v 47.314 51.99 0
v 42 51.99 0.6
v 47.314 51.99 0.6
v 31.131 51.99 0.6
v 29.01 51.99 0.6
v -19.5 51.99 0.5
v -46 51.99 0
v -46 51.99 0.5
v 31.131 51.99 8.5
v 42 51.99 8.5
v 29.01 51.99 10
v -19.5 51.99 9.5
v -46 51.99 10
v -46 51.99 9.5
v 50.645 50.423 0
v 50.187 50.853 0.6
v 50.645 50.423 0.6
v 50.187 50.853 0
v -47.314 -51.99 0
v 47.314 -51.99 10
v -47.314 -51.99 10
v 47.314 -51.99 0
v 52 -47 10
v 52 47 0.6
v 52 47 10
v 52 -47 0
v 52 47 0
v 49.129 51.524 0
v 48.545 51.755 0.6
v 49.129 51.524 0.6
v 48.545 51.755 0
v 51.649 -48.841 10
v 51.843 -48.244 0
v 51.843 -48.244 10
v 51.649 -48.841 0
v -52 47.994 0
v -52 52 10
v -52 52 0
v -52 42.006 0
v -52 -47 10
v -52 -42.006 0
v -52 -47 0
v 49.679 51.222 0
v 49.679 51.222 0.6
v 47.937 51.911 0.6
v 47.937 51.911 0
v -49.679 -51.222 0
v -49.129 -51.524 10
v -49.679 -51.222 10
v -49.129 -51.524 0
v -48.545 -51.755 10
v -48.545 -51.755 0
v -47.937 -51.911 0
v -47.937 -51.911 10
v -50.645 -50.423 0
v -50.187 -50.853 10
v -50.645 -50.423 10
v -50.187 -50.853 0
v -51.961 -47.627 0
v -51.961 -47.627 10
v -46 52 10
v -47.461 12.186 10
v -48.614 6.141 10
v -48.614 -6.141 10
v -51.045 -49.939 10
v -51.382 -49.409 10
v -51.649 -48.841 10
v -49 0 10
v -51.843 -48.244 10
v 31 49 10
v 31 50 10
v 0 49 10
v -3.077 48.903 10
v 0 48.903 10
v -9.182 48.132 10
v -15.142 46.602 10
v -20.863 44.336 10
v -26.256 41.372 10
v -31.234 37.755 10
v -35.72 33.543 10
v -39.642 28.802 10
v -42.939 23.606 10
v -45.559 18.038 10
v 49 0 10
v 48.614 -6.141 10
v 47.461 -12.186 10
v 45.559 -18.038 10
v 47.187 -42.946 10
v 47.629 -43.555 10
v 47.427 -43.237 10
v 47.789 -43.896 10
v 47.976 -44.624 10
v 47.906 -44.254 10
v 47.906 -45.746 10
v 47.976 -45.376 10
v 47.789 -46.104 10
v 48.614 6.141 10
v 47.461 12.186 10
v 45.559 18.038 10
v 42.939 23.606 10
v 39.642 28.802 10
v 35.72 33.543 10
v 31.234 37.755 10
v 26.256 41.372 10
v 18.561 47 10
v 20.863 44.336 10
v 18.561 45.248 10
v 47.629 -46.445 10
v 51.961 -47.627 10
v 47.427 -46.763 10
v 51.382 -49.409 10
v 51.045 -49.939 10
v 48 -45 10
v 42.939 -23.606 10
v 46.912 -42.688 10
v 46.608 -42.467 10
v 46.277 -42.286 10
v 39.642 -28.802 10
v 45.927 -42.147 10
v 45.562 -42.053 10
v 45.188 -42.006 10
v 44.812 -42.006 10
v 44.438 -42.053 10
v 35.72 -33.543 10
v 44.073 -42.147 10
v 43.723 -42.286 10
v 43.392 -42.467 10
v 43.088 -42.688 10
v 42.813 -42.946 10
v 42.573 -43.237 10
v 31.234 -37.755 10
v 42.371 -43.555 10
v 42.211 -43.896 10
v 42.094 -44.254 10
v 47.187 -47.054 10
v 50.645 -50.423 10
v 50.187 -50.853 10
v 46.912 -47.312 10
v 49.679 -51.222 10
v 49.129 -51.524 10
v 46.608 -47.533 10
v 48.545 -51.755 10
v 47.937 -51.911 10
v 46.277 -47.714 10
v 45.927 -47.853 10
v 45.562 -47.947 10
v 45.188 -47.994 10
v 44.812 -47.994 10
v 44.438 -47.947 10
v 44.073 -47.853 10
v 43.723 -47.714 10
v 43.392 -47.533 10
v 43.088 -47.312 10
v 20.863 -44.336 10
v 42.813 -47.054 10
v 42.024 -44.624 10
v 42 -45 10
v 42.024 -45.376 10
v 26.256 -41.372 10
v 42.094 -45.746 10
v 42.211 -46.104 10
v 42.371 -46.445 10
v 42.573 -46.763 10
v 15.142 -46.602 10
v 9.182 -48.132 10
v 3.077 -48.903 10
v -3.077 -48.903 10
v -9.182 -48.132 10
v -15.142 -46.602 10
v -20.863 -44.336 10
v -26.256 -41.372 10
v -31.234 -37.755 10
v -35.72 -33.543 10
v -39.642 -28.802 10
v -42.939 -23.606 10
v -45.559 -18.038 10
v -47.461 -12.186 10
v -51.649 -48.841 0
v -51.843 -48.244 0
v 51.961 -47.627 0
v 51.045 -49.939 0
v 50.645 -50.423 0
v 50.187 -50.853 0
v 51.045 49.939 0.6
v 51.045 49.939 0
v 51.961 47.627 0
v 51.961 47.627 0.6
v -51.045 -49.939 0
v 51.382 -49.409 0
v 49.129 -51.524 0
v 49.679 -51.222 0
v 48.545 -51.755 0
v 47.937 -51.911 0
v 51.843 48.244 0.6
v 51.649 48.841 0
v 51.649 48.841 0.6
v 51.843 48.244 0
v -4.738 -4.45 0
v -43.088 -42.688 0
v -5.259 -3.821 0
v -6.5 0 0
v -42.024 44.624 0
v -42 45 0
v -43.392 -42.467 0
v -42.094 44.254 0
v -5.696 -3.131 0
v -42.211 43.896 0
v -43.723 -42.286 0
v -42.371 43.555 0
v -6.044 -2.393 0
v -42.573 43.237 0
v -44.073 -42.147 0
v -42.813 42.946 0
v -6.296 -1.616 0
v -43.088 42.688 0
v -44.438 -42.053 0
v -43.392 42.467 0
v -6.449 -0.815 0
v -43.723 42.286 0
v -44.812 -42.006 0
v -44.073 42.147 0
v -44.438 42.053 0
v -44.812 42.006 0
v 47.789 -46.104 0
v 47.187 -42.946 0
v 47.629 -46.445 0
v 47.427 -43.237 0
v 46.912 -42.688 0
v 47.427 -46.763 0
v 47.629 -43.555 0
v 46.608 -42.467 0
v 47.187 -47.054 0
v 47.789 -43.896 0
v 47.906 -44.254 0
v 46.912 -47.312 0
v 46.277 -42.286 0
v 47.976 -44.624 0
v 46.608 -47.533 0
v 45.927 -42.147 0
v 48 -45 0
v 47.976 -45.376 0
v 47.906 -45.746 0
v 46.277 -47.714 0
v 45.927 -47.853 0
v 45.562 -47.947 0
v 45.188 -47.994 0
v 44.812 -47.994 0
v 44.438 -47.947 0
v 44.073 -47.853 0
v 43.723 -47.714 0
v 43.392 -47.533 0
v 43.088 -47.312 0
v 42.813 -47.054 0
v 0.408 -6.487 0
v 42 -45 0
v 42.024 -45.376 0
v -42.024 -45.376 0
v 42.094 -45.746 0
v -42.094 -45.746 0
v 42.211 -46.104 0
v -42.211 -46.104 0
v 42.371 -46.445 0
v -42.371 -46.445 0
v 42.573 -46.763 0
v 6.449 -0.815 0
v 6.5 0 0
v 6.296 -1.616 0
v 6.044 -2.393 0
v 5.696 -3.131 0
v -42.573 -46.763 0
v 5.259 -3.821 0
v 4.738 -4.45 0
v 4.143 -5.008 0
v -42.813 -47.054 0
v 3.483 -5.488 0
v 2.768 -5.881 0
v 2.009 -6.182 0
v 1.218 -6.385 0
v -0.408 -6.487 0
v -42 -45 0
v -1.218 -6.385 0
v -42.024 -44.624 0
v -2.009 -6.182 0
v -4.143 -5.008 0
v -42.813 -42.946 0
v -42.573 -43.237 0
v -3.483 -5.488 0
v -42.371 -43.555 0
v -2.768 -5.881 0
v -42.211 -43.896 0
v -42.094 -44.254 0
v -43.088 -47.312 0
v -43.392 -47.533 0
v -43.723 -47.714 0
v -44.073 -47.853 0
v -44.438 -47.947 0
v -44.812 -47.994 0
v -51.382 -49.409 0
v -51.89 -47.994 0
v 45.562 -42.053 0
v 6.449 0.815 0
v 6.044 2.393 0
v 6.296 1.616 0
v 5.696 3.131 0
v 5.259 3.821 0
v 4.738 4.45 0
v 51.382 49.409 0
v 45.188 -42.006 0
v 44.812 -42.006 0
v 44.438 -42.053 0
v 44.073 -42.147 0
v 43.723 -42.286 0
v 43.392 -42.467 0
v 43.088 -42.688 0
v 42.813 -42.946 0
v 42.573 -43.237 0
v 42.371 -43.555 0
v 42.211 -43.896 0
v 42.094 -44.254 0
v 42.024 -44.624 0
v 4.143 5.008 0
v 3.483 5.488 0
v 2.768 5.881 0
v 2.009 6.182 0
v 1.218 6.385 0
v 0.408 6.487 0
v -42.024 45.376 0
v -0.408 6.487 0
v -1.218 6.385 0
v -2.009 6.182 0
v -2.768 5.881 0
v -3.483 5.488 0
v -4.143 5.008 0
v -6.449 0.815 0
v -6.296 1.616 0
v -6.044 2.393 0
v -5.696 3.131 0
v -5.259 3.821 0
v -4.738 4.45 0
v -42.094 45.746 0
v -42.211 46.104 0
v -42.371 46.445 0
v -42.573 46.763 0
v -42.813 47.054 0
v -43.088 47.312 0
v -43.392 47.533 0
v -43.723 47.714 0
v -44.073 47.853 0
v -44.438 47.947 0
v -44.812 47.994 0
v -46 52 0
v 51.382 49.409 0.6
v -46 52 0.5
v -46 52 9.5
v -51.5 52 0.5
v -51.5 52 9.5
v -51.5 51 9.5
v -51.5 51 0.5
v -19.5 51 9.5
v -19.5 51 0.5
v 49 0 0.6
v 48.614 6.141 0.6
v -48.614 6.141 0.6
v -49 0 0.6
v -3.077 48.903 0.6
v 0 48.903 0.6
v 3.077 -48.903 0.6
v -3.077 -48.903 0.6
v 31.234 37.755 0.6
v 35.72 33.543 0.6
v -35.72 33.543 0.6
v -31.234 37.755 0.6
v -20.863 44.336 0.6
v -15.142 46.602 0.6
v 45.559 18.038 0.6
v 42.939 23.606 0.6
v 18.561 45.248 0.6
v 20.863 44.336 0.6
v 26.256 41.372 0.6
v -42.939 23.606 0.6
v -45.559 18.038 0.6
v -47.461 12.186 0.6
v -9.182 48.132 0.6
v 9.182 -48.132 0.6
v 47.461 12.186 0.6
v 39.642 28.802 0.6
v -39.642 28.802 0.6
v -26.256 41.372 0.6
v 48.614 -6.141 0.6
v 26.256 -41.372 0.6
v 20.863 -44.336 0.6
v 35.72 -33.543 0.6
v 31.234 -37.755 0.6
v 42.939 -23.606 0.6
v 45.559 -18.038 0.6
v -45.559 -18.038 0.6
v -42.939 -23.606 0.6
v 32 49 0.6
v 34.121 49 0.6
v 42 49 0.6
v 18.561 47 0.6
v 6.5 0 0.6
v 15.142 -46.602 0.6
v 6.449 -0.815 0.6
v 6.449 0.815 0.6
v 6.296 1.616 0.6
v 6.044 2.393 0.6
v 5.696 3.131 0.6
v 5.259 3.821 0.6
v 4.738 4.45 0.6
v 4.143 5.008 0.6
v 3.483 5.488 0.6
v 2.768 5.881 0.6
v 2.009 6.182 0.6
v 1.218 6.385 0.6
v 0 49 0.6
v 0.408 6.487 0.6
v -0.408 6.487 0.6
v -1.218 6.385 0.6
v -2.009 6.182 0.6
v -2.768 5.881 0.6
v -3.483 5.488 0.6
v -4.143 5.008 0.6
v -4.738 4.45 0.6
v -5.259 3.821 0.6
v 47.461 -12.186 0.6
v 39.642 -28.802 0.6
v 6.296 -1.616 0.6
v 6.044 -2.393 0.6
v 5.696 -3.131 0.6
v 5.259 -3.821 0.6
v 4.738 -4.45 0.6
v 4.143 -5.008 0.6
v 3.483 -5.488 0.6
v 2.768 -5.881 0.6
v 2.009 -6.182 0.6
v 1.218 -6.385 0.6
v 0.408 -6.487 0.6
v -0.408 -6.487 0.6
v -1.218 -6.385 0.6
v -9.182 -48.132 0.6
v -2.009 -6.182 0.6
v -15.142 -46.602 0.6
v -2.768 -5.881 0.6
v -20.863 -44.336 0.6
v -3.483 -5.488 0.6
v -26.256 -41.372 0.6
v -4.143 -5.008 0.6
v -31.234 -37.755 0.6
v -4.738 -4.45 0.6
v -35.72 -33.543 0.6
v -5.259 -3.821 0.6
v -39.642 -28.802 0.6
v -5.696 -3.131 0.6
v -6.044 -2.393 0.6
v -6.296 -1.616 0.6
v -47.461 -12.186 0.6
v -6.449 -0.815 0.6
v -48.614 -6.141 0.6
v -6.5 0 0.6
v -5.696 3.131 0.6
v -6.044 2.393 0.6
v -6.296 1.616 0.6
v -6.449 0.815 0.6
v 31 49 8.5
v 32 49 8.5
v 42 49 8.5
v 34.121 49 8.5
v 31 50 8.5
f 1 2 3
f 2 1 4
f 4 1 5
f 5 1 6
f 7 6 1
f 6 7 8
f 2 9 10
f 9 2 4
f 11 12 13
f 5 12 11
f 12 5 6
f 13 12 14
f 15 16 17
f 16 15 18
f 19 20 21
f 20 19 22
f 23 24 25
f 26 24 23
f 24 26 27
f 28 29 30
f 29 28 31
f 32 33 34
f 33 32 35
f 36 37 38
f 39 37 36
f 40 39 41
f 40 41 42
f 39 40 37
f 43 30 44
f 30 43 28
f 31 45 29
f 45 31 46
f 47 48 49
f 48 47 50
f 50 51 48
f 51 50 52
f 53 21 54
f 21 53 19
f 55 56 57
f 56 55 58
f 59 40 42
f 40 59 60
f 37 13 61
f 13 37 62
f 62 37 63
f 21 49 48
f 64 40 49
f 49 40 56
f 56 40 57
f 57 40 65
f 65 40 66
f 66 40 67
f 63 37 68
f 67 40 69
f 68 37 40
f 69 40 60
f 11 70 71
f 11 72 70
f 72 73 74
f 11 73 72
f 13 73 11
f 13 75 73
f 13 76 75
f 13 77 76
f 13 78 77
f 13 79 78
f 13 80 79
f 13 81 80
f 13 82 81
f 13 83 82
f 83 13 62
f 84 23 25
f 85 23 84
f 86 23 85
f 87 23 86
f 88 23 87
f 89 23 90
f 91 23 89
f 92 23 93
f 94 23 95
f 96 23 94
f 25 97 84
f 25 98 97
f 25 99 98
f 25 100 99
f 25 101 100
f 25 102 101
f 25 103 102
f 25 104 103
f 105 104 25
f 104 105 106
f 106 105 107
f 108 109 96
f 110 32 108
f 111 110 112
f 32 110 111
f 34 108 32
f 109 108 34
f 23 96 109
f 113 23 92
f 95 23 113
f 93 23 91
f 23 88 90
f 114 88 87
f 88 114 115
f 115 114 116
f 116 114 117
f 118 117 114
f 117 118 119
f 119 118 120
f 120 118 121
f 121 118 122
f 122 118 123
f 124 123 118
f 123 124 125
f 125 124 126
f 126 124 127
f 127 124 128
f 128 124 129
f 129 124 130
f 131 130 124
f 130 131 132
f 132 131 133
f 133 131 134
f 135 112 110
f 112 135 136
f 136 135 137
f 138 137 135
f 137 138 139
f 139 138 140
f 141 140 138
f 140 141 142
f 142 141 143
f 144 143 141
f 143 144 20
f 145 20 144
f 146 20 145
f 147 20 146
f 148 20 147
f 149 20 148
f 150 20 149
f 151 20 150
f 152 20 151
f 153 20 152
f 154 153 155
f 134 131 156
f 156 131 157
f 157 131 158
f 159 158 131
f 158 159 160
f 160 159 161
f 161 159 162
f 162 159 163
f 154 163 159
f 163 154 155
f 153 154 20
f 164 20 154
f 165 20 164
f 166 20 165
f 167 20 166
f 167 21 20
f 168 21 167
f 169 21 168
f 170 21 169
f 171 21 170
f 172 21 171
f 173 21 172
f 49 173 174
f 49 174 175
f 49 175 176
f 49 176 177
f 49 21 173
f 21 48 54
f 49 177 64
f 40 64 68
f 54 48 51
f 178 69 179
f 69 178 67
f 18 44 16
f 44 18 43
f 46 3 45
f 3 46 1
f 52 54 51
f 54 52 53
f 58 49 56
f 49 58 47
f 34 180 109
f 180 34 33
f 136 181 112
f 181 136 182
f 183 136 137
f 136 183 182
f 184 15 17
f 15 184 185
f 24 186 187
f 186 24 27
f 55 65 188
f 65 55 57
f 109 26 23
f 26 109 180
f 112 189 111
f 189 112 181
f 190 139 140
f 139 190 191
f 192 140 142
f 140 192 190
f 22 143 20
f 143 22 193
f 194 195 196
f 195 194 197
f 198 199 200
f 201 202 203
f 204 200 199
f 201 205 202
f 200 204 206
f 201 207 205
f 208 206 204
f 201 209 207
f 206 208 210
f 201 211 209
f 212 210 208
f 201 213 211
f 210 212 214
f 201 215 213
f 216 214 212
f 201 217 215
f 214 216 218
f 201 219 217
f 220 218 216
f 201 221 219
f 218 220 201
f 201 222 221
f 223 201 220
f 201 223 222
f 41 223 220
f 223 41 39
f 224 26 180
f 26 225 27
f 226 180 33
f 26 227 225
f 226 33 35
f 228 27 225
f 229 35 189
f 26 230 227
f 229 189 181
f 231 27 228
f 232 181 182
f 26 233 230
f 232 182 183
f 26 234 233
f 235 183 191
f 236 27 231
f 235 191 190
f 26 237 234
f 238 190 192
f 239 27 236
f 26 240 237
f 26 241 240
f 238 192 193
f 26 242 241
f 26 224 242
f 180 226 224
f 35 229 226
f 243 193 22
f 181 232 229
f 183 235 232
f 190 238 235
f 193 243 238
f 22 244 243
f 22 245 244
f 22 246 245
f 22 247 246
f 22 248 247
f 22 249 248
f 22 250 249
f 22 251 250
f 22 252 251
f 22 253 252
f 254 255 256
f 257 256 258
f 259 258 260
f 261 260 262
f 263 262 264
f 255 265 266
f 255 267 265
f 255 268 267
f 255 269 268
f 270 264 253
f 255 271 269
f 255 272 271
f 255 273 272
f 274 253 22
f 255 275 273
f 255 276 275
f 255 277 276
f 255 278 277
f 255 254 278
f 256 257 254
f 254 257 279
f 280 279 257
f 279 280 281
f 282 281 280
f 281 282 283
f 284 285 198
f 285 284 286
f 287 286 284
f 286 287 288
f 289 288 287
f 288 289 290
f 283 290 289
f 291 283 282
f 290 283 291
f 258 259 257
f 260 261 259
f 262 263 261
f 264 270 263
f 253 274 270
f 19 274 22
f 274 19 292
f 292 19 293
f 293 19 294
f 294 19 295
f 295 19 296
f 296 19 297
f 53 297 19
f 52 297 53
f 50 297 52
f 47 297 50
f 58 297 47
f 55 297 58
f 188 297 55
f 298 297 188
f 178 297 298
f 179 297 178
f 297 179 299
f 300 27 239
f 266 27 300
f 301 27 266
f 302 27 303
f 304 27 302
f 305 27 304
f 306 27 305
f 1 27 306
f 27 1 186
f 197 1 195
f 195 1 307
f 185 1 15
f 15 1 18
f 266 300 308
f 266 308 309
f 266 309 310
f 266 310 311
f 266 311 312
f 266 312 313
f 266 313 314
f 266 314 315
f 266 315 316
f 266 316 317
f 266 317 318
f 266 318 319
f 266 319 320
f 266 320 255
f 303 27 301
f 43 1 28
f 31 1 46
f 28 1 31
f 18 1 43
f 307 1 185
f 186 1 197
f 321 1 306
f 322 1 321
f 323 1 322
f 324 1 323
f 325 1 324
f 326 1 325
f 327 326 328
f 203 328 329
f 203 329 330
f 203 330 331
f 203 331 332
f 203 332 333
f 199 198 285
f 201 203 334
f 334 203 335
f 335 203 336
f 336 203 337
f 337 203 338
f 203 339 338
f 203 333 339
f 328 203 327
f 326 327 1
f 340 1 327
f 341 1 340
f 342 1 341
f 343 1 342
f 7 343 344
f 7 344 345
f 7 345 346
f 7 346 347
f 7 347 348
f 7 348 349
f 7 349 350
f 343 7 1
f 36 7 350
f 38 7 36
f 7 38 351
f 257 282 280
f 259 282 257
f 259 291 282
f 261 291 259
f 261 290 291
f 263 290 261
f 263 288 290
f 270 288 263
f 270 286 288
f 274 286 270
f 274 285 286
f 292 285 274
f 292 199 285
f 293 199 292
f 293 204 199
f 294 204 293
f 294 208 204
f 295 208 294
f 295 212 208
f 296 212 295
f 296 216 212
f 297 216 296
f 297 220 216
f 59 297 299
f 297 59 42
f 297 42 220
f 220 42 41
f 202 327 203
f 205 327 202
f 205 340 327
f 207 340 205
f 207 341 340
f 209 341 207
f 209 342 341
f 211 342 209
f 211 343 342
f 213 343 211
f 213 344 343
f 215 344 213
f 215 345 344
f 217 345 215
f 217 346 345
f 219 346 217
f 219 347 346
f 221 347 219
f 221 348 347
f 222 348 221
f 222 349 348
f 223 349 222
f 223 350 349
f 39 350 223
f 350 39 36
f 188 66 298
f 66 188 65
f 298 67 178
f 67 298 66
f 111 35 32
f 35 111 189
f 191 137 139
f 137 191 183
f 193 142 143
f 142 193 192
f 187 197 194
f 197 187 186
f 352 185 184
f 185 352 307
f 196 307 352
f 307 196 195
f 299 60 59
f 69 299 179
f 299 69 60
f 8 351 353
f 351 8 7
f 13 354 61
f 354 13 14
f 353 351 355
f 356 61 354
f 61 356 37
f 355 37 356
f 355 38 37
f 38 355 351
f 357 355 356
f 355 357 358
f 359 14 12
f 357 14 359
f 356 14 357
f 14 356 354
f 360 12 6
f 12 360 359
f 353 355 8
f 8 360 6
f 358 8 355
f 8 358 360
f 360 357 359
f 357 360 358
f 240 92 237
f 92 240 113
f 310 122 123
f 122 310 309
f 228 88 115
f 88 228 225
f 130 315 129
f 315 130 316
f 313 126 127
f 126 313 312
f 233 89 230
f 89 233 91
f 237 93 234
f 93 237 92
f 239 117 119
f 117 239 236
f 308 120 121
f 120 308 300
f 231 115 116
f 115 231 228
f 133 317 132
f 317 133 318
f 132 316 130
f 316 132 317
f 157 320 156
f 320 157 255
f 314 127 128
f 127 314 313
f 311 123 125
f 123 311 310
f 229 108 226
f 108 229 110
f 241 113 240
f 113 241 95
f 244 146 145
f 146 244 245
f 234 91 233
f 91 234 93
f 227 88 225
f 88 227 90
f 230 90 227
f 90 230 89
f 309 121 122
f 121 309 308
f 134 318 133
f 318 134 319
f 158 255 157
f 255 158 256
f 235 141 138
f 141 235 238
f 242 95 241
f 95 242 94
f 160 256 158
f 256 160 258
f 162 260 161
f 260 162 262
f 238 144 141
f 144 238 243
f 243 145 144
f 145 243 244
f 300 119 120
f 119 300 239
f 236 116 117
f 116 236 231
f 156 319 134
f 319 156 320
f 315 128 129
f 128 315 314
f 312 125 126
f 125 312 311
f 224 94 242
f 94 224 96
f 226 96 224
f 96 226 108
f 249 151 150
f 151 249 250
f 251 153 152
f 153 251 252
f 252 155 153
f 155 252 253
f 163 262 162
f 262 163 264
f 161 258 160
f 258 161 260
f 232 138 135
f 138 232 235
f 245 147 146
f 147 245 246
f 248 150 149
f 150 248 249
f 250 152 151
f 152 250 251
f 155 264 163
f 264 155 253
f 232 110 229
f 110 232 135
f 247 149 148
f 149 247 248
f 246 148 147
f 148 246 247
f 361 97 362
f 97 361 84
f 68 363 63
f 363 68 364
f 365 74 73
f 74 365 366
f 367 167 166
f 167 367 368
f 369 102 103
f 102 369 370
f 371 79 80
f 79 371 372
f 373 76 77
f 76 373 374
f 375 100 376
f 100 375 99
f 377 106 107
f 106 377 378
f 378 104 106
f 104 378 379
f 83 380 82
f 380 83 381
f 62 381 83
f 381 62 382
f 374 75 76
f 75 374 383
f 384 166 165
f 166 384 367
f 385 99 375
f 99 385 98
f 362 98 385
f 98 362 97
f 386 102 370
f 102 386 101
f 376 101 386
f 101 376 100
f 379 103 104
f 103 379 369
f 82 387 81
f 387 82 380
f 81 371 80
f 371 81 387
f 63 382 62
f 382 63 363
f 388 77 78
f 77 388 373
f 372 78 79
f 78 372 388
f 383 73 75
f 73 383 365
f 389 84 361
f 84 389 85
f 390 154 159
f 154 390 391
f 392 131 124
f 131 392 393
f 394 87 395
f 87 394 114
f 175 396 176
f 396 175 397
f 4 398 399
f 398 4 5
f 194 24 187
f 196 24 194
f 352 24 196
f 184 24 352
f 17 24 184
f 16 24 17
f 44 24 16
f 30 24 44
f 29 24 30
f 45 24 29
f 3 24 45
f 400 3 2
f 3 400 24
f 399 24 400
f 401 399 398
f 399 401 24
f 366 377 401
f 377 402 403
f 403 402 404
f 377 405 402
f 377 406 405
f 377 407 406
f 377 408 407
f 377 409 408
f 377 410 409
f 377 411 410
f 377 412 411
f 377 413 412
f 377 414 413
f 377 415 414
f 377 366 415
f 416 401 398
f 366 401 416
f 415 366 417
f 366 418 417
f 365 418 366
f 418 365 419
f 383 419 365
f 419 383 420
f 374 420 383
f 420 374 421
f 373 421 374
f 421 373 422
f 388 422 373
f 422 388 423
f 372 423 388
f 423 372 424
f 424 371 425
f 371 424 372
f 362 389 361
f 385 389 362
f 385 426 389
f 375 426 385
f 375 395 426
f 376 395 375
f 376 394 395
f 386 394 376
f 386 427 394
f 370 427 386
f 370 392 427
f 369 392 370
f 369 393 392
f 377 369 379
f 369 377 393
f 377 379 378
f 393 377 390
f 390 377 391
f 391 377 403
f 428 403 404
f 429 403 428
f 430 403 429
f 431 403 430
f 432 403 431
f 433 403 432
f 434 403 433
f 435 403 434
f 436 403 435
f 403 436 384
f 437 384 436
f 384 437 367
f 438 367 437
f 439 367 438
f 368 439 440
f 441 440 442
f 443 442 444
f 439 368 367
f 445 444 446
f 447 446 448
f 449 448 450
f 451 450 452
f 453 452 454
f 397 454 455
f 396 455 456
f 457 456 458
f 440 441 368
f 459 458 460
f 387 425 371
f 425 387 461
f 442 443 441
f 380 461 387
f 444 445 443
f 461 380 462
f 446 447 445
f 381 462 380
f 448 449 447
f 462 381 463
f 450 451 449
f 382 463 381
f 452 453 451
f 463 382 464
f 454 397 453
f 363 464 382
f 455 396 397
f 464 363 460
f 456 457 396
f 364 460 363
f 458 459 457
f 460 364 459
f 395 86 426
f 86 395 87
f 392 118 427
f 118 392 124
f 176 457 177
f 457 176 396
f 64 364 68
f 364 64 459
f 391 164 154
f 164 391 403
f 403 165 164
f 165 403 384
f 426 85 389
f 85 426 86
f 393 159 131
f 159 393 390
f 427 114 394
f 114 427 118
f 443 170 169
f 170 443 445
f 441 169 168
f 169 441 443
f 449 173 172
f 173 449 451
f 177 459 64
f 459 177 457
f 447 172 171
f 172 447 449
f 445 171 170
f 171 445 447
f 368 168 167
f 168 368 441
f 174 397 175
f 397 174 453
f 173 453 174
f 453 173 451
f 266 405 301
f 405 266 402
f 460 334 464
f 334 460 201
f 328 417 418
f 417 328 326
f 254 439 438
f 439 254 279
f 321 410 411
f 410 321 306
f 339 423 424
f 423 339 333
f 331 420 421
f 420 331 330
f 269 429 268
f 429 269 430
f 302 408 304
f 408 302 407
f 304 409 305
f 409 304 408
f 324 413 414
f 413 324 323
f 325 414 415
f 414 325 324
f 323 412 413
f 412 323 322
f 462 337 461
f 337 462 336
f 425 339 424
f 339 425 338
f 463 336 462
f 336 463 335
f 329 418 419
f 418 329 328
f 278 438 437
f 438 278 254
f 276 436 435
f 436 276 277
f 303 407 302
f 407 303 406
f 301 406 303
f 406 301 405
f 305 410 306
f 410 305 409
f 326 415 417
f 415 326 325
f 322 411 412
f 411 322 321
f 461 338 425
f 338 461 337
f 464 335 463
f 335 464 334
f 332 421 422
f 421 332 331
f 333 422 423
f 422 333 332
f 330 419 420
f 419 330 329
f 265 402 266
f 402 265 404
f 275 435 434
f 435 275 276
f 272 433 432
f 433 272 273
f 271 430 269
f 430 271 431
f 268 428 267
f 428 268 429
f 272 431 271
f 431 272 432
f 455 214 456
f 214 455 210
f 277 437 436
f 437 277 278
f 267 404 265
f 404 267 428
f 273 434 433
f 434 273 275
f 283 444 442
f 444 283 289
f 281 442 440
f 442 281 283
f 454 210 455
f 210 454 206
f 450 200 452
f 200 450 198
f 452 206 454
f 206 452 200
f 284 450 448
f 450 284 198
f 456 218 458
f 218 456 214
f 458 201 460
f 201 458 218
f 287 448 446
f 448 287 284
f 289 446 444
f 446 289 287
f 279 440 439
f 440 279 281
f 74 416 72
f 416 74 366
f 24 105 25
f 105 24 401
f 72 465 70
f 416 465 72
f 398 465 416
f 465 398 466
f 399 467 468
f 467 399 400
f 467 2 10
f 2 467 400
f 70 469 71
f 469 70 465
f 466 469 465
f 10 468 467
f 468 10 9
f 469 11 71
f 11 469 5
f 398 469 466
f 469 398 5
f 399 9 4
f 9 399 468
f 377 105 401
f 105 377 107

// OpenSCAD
$fn = 50;


difference() {
	union() {
		hull() {
			translate(v = [-47.0000000000, 47.0000000000, 0]) {
				cylinder(h = 10, r = 5);
			}
			translate(v = [47.0000000000, 47.0000000000, 0]) {
				cylinder(h = 10, r = 5);
			}
			translate(v = [-47.0000000000, -47.0000000000, 0]) {
				cylinder(h = 10, r = 5);
			}
			translate(v = [47.0000000000, -47.0000000000, 0]) {
				cylinder(h = 10, r = 5);
			}
		}
		translate(v = [-52.0000000000, 46.0000000000, 0]) {
			cube(size = [6, 6, 10]);
		}
	}
	union() {
		translate(v = [-52.5000000000, -45.0000000000, -250.0000000000]) {
			rotate(a = [0, 0, 0]) {
				difference() {
					union() {
						hull() {
							translate(v = [7.5000000000, 0, 0]) {
								cylinder(h = 250, r = 3.0000000000, r1 = 3.0000000000, r2 = 3.0000000000);
							}
							translate(v = [-7.5000000000, 0, 0]) {
								cylinder(h = 250, r = 3.0000000000, r1 = 3.0000000000, r2 = 3.0000000000);
							}
						}
					}
					union();
				}
			}
		}
		translate(v = [-52.5000000000, 45.0000000000, -250.0000000000]) {
			rotate(a = [0, 0, 0]) {
				difference() {
					union() {
						hull() {
							translate(v = [7.5000000000, 0, 0]) {
								cylinder(h = 250, r = 3.0000000000, r1 = 3.0000000000, r2 = 3.0000000000);
							}
							translate(v = [-7.5000000000, 0, 0]) {
								cylinder(h = 250, r = 3.0000000000, r1 = 3.0000000000, r2 = 3.0000000000);
							}
						}
					}
					union();
				}
			}
		}
		translate(v = [-51.5000000000, 51.0000000000, 0.5000000000]) {
			cube(size = [32, 1, 9.0000000000]);
		}
		translate(v = [45.0000000000, -45.0000000000, -50.0000000000]) {
			cylinder(h = 100, r = 3.0000000000);
		}
		translate(v = [0, 0, 0.6000000000]) {
			cylinder(h = 12.4000000000, r = 49.0000000000);
		}
		translate(v = [0, 0, -5.0000000000]) {
			cylinder(h = 10, r = 6.5000000000);
		}
		translate(v = [0.0000000000, 47.0000000000, 0.6000000000]) {
			cube(size = [52.0000000000, 2, 12.4000000000]);
		}
		translate(v = [42.0000000000, 47.0000000000, 0.6000000000]) {
			cube(size = [10, 5, 12.4000000000]);
		}
		translate(v = [31.0000000000, 47.0000000000, 8.5000000000]) {
			cube(size = [21, 5, 1.5000000000]);
		}
		translate(v = [28.2500000000, 52.7500000000, 0.6000000000]) {
			rotate(a = [0, 0, -45]) {
				cube(size = [7.5000000000, 1.5000000000, 12.4000000000]);
			}
		}
		translate(v = [11.0610000000, 45.0000000000, 0.6000000000]) {
			cube(size = [7.5000000000, 2, 9.4000000000]);
		}
	}
}
